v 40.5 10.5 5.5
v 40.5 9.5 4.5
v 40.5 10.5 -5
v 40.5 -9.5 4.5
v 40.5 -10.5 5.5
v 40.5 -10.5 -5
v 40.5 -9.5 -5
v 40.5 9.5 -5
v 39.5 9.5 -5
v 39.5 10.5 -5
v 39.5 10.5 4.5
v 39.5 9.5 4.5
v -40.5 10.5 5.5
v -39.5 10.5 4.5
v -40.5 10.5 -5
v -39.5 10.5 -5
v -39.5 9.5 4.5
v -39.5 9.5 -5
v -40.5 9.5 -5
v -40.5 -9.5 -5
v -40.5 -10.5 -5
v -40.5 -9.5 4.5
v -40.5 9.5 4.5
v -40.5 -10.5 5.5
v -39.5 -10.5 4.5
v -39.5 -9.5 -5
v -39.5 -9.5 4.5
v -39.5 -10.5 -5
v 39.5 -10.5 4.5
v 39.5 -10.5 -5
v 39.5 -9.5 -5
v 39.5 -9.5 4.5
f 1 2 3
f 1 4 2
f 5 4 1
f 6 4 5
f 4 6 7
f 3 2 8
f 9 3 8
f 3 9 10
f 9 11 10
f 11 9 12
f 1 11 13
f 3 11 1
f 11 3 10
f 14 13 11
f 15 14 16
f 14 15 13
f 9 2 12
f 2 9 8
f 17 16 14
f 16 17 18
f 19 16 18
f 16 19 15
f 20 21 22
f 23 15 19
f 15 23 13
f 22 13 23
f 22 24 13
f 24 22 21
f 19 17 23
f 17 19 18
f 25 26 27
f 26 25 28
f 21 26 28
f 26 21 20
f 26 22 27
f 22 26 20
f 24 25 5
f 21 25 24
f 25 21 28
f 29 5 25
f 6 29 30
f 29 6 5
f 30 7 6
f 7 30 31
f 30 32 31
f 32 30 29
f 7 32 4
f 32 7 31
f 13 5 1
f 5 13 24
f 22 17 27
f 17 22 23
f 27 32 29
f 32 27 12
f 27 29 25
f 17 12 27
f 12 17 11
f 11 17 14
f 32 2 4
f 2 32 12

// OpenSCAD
// Angelo Nicolì 2023 - Licensed GPL-2.0

Table_Leg = [1,1,10];


Leg_Distance_x = 80;
Leg_Distance_y = 20;



translate([Leg_Distance_x*0.5,Leg_Distance_y*0.5,0])
cube([Table_Leg[0],Table_Leg[1],Table_Leg[2]],center=true);

translate([-Leg_Distance_x*0.5,Leg_Distance_y*0.5,0])
cube([Table_Leg[0],Table_Leg[1],Table_Leg[2]],center=true);

translate([-Leg_Distance_x*0.5,-Leg_Distance_y*0.5,0])
cube([Table_Leg[0],Table_Leg[1],Table_Leg[2]],center=true);

translate([Leg_Distance_x*0.5,-Leg_Distance_y*0.5,0])
cube([Table_Leg[0],Table_Leg[1],Table_Leg[2]],center=true);

Table_Upper = [Leg_Distance_x+Table_Leg[0],Leg_Distance_y+Table_Leg[1],1];
Table_Height = Table_Leg[2]*0.5;

translate([0,0,Table_Height])
cube([Table_Upper[0],Table_Upper[1],Table_Upper[2]],center=true);
